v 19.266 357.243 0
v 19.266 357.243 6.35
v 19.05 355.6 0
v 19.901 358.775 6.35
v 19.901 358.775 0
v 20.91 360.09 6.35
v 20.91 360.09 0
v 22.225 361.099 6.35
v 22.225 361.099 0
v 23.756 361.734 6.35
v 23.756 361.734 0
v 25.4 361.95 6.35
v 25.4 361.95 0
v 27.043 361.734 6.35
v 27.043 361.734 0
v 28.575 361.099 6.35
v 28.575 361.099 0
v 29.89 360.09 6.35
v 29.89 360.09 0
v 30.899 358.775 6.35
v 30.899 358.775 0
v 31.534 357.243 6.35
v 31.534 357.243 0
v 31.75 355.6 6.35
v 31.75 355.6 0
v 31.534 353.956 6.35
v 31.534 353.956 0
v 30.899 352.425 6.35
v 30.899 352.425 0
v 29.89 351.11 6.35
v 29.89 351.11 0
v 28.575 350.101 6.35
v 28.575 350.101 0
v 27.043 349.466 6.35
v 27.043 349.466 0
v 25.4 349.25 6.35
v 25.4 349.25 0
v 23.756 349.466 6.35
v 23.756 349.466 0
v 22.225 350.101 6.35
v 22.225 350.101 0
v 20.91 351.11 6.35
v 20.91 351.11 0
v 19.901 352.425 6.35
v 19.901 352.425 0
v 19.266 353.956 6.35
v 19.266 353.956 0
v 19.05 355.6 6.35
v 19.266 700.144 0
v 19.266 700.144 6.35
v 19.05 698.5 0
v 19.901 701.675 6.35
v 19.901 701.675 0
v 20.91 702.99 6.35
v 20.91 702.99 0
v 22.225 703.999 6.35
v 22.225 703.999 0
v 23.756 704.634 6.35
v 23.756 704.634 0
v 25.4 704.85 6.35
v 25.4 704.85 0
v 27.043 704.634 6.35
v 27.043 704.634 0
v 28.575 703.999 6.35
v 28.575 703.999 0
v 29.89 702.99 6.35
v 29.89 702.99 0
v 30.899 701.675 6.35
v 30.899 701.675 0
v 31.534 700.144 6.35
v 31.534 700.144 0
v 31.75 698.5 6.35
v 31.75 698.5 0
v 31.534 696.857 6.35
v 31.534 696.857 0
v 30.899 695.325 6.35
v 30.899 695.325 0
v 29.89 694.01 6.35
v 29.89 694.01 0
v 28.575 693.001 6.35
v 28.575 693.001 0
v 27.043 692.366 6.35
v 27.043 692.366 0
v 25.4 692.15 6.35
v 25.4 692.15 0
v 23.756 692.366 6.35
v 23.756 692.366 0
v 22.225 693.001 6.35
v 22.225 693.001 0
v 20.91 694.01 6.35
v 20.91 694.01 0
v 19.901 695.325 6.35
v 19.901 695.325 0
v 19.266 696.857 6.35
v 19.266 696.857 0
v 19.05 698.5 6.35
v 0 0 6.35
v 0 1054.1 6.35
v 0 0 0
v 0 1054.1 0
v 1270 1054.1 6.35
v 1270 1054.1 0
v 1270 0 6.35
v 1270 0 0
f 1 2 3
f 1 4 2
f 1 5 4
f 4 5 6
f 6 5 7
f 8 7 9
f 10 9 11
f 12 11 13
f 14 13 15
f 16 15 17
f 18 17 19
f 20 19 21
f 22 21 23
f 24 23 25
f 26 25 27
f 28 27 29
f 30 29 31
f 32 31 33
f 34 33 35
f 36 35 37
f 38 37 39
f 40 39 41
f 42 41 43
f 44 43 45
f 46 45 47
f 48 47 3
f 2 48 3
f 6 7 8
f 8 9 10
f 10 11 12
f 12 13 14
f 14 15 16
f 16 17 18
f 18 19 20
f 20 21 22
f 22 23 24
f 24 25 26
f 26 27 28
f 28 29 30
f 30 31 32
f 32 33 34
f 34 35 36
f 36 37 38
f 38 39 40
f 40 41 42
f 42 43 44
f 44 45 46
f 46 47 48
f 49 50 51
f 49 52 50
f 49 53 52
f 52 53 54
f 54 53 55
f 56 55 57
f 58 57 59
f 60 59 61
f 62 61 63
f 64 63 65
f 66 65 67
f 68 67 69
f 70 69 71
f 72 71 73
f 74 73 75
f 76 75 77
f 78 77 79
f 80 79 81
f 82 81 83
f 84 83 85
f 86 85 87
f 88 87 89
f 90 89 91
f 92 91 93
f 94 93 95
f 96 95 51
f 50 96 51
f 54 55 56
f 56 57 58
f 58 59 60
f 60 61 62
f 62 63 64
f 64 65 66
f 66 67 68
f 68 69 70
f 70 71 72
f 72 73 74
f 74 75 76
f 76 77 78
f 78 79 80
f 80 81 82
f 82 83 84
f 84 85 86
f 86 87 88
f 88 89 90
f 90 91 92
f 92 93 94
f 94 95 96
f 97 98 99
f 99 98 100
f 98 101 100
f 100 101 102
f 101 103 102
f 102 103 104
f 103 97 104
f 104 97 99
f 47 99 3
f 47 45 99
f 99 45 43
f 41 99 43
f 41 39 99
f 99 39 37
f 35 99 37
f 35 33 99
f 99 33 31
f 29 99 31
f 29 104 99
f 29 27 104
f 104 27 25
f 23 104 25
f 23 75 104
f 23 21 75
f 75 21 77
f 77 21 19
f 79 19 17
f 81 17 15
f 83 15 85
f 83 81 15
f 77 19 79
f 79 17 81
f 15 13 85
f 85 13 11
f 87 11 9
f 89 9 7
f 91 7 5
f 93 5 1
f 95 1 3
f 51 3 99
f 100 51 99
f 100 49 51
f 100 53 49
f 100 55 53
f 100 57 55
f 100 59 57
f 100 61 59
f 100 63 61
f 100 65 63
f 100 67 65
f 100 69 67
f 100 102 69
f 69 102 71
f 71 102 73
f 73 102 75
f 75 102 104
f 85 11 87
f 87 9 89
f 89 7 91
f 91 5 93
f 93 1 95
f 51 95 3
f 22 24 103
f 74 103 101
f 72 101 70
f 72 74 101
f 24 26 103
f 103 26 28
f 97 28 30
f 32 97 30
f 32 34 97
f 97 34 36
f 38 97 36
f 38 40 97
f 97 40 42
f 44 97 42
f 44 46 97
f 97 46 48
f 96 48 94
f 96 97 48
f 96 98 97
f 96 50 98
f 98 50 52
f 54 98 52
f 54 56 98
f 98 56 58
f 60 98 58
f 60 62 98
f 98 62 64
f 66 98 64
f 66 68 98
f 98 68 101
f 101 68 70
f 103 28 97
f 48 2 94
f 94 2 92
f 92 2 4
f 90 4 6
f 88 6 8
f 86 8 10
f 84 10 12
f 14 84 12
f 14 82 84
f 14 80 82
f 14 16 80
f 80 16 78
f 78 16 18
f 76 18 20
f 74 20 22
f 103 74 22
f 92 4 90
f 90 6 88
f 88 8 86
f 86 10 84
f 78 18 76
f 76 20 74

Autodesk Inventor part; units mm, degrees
ref_plane "YZ Plane" through (0, 0, 0) normal (1, 0, 0) x (0, 1, 0)
ref_plane "XZ Plane" through (0, 0, 0) normal (0, 1, 0) x (-1, 0, 0)
ref_plane "XY Plane" through (0, 0, 0) normal (0, 0, 1) x (1, 0, 0)
sketch "Sketch1" plane through (0, 0, 0) normal (0, 0, 1) x (1, 0, 0)
  line L0 (0, 0) -> (1270, 0)
  line L1 (1270, 0) -> (1270, 1054.1)
  line L2 (1270, 1054.1) -> (0, 1054.1)
  line L3 (0, 1054.1) -> (0, 0)
  dimension "d0" = 1054.1
  dimension "d1" = 1270
extrude "Extrusion1" add sketch "Sketch1" along normal blind 6.35
hole "Hole1" at (25.4, 698.5, 6.35) direction (0, 0, -1) diameter 12.7 depth 25.4 tip angle 118
pattern_linear "Rectangular Pattern1" count 2 spacing 342.9 along (0, -1, 0) of "Hole1"
properties part number "GE-12055"
